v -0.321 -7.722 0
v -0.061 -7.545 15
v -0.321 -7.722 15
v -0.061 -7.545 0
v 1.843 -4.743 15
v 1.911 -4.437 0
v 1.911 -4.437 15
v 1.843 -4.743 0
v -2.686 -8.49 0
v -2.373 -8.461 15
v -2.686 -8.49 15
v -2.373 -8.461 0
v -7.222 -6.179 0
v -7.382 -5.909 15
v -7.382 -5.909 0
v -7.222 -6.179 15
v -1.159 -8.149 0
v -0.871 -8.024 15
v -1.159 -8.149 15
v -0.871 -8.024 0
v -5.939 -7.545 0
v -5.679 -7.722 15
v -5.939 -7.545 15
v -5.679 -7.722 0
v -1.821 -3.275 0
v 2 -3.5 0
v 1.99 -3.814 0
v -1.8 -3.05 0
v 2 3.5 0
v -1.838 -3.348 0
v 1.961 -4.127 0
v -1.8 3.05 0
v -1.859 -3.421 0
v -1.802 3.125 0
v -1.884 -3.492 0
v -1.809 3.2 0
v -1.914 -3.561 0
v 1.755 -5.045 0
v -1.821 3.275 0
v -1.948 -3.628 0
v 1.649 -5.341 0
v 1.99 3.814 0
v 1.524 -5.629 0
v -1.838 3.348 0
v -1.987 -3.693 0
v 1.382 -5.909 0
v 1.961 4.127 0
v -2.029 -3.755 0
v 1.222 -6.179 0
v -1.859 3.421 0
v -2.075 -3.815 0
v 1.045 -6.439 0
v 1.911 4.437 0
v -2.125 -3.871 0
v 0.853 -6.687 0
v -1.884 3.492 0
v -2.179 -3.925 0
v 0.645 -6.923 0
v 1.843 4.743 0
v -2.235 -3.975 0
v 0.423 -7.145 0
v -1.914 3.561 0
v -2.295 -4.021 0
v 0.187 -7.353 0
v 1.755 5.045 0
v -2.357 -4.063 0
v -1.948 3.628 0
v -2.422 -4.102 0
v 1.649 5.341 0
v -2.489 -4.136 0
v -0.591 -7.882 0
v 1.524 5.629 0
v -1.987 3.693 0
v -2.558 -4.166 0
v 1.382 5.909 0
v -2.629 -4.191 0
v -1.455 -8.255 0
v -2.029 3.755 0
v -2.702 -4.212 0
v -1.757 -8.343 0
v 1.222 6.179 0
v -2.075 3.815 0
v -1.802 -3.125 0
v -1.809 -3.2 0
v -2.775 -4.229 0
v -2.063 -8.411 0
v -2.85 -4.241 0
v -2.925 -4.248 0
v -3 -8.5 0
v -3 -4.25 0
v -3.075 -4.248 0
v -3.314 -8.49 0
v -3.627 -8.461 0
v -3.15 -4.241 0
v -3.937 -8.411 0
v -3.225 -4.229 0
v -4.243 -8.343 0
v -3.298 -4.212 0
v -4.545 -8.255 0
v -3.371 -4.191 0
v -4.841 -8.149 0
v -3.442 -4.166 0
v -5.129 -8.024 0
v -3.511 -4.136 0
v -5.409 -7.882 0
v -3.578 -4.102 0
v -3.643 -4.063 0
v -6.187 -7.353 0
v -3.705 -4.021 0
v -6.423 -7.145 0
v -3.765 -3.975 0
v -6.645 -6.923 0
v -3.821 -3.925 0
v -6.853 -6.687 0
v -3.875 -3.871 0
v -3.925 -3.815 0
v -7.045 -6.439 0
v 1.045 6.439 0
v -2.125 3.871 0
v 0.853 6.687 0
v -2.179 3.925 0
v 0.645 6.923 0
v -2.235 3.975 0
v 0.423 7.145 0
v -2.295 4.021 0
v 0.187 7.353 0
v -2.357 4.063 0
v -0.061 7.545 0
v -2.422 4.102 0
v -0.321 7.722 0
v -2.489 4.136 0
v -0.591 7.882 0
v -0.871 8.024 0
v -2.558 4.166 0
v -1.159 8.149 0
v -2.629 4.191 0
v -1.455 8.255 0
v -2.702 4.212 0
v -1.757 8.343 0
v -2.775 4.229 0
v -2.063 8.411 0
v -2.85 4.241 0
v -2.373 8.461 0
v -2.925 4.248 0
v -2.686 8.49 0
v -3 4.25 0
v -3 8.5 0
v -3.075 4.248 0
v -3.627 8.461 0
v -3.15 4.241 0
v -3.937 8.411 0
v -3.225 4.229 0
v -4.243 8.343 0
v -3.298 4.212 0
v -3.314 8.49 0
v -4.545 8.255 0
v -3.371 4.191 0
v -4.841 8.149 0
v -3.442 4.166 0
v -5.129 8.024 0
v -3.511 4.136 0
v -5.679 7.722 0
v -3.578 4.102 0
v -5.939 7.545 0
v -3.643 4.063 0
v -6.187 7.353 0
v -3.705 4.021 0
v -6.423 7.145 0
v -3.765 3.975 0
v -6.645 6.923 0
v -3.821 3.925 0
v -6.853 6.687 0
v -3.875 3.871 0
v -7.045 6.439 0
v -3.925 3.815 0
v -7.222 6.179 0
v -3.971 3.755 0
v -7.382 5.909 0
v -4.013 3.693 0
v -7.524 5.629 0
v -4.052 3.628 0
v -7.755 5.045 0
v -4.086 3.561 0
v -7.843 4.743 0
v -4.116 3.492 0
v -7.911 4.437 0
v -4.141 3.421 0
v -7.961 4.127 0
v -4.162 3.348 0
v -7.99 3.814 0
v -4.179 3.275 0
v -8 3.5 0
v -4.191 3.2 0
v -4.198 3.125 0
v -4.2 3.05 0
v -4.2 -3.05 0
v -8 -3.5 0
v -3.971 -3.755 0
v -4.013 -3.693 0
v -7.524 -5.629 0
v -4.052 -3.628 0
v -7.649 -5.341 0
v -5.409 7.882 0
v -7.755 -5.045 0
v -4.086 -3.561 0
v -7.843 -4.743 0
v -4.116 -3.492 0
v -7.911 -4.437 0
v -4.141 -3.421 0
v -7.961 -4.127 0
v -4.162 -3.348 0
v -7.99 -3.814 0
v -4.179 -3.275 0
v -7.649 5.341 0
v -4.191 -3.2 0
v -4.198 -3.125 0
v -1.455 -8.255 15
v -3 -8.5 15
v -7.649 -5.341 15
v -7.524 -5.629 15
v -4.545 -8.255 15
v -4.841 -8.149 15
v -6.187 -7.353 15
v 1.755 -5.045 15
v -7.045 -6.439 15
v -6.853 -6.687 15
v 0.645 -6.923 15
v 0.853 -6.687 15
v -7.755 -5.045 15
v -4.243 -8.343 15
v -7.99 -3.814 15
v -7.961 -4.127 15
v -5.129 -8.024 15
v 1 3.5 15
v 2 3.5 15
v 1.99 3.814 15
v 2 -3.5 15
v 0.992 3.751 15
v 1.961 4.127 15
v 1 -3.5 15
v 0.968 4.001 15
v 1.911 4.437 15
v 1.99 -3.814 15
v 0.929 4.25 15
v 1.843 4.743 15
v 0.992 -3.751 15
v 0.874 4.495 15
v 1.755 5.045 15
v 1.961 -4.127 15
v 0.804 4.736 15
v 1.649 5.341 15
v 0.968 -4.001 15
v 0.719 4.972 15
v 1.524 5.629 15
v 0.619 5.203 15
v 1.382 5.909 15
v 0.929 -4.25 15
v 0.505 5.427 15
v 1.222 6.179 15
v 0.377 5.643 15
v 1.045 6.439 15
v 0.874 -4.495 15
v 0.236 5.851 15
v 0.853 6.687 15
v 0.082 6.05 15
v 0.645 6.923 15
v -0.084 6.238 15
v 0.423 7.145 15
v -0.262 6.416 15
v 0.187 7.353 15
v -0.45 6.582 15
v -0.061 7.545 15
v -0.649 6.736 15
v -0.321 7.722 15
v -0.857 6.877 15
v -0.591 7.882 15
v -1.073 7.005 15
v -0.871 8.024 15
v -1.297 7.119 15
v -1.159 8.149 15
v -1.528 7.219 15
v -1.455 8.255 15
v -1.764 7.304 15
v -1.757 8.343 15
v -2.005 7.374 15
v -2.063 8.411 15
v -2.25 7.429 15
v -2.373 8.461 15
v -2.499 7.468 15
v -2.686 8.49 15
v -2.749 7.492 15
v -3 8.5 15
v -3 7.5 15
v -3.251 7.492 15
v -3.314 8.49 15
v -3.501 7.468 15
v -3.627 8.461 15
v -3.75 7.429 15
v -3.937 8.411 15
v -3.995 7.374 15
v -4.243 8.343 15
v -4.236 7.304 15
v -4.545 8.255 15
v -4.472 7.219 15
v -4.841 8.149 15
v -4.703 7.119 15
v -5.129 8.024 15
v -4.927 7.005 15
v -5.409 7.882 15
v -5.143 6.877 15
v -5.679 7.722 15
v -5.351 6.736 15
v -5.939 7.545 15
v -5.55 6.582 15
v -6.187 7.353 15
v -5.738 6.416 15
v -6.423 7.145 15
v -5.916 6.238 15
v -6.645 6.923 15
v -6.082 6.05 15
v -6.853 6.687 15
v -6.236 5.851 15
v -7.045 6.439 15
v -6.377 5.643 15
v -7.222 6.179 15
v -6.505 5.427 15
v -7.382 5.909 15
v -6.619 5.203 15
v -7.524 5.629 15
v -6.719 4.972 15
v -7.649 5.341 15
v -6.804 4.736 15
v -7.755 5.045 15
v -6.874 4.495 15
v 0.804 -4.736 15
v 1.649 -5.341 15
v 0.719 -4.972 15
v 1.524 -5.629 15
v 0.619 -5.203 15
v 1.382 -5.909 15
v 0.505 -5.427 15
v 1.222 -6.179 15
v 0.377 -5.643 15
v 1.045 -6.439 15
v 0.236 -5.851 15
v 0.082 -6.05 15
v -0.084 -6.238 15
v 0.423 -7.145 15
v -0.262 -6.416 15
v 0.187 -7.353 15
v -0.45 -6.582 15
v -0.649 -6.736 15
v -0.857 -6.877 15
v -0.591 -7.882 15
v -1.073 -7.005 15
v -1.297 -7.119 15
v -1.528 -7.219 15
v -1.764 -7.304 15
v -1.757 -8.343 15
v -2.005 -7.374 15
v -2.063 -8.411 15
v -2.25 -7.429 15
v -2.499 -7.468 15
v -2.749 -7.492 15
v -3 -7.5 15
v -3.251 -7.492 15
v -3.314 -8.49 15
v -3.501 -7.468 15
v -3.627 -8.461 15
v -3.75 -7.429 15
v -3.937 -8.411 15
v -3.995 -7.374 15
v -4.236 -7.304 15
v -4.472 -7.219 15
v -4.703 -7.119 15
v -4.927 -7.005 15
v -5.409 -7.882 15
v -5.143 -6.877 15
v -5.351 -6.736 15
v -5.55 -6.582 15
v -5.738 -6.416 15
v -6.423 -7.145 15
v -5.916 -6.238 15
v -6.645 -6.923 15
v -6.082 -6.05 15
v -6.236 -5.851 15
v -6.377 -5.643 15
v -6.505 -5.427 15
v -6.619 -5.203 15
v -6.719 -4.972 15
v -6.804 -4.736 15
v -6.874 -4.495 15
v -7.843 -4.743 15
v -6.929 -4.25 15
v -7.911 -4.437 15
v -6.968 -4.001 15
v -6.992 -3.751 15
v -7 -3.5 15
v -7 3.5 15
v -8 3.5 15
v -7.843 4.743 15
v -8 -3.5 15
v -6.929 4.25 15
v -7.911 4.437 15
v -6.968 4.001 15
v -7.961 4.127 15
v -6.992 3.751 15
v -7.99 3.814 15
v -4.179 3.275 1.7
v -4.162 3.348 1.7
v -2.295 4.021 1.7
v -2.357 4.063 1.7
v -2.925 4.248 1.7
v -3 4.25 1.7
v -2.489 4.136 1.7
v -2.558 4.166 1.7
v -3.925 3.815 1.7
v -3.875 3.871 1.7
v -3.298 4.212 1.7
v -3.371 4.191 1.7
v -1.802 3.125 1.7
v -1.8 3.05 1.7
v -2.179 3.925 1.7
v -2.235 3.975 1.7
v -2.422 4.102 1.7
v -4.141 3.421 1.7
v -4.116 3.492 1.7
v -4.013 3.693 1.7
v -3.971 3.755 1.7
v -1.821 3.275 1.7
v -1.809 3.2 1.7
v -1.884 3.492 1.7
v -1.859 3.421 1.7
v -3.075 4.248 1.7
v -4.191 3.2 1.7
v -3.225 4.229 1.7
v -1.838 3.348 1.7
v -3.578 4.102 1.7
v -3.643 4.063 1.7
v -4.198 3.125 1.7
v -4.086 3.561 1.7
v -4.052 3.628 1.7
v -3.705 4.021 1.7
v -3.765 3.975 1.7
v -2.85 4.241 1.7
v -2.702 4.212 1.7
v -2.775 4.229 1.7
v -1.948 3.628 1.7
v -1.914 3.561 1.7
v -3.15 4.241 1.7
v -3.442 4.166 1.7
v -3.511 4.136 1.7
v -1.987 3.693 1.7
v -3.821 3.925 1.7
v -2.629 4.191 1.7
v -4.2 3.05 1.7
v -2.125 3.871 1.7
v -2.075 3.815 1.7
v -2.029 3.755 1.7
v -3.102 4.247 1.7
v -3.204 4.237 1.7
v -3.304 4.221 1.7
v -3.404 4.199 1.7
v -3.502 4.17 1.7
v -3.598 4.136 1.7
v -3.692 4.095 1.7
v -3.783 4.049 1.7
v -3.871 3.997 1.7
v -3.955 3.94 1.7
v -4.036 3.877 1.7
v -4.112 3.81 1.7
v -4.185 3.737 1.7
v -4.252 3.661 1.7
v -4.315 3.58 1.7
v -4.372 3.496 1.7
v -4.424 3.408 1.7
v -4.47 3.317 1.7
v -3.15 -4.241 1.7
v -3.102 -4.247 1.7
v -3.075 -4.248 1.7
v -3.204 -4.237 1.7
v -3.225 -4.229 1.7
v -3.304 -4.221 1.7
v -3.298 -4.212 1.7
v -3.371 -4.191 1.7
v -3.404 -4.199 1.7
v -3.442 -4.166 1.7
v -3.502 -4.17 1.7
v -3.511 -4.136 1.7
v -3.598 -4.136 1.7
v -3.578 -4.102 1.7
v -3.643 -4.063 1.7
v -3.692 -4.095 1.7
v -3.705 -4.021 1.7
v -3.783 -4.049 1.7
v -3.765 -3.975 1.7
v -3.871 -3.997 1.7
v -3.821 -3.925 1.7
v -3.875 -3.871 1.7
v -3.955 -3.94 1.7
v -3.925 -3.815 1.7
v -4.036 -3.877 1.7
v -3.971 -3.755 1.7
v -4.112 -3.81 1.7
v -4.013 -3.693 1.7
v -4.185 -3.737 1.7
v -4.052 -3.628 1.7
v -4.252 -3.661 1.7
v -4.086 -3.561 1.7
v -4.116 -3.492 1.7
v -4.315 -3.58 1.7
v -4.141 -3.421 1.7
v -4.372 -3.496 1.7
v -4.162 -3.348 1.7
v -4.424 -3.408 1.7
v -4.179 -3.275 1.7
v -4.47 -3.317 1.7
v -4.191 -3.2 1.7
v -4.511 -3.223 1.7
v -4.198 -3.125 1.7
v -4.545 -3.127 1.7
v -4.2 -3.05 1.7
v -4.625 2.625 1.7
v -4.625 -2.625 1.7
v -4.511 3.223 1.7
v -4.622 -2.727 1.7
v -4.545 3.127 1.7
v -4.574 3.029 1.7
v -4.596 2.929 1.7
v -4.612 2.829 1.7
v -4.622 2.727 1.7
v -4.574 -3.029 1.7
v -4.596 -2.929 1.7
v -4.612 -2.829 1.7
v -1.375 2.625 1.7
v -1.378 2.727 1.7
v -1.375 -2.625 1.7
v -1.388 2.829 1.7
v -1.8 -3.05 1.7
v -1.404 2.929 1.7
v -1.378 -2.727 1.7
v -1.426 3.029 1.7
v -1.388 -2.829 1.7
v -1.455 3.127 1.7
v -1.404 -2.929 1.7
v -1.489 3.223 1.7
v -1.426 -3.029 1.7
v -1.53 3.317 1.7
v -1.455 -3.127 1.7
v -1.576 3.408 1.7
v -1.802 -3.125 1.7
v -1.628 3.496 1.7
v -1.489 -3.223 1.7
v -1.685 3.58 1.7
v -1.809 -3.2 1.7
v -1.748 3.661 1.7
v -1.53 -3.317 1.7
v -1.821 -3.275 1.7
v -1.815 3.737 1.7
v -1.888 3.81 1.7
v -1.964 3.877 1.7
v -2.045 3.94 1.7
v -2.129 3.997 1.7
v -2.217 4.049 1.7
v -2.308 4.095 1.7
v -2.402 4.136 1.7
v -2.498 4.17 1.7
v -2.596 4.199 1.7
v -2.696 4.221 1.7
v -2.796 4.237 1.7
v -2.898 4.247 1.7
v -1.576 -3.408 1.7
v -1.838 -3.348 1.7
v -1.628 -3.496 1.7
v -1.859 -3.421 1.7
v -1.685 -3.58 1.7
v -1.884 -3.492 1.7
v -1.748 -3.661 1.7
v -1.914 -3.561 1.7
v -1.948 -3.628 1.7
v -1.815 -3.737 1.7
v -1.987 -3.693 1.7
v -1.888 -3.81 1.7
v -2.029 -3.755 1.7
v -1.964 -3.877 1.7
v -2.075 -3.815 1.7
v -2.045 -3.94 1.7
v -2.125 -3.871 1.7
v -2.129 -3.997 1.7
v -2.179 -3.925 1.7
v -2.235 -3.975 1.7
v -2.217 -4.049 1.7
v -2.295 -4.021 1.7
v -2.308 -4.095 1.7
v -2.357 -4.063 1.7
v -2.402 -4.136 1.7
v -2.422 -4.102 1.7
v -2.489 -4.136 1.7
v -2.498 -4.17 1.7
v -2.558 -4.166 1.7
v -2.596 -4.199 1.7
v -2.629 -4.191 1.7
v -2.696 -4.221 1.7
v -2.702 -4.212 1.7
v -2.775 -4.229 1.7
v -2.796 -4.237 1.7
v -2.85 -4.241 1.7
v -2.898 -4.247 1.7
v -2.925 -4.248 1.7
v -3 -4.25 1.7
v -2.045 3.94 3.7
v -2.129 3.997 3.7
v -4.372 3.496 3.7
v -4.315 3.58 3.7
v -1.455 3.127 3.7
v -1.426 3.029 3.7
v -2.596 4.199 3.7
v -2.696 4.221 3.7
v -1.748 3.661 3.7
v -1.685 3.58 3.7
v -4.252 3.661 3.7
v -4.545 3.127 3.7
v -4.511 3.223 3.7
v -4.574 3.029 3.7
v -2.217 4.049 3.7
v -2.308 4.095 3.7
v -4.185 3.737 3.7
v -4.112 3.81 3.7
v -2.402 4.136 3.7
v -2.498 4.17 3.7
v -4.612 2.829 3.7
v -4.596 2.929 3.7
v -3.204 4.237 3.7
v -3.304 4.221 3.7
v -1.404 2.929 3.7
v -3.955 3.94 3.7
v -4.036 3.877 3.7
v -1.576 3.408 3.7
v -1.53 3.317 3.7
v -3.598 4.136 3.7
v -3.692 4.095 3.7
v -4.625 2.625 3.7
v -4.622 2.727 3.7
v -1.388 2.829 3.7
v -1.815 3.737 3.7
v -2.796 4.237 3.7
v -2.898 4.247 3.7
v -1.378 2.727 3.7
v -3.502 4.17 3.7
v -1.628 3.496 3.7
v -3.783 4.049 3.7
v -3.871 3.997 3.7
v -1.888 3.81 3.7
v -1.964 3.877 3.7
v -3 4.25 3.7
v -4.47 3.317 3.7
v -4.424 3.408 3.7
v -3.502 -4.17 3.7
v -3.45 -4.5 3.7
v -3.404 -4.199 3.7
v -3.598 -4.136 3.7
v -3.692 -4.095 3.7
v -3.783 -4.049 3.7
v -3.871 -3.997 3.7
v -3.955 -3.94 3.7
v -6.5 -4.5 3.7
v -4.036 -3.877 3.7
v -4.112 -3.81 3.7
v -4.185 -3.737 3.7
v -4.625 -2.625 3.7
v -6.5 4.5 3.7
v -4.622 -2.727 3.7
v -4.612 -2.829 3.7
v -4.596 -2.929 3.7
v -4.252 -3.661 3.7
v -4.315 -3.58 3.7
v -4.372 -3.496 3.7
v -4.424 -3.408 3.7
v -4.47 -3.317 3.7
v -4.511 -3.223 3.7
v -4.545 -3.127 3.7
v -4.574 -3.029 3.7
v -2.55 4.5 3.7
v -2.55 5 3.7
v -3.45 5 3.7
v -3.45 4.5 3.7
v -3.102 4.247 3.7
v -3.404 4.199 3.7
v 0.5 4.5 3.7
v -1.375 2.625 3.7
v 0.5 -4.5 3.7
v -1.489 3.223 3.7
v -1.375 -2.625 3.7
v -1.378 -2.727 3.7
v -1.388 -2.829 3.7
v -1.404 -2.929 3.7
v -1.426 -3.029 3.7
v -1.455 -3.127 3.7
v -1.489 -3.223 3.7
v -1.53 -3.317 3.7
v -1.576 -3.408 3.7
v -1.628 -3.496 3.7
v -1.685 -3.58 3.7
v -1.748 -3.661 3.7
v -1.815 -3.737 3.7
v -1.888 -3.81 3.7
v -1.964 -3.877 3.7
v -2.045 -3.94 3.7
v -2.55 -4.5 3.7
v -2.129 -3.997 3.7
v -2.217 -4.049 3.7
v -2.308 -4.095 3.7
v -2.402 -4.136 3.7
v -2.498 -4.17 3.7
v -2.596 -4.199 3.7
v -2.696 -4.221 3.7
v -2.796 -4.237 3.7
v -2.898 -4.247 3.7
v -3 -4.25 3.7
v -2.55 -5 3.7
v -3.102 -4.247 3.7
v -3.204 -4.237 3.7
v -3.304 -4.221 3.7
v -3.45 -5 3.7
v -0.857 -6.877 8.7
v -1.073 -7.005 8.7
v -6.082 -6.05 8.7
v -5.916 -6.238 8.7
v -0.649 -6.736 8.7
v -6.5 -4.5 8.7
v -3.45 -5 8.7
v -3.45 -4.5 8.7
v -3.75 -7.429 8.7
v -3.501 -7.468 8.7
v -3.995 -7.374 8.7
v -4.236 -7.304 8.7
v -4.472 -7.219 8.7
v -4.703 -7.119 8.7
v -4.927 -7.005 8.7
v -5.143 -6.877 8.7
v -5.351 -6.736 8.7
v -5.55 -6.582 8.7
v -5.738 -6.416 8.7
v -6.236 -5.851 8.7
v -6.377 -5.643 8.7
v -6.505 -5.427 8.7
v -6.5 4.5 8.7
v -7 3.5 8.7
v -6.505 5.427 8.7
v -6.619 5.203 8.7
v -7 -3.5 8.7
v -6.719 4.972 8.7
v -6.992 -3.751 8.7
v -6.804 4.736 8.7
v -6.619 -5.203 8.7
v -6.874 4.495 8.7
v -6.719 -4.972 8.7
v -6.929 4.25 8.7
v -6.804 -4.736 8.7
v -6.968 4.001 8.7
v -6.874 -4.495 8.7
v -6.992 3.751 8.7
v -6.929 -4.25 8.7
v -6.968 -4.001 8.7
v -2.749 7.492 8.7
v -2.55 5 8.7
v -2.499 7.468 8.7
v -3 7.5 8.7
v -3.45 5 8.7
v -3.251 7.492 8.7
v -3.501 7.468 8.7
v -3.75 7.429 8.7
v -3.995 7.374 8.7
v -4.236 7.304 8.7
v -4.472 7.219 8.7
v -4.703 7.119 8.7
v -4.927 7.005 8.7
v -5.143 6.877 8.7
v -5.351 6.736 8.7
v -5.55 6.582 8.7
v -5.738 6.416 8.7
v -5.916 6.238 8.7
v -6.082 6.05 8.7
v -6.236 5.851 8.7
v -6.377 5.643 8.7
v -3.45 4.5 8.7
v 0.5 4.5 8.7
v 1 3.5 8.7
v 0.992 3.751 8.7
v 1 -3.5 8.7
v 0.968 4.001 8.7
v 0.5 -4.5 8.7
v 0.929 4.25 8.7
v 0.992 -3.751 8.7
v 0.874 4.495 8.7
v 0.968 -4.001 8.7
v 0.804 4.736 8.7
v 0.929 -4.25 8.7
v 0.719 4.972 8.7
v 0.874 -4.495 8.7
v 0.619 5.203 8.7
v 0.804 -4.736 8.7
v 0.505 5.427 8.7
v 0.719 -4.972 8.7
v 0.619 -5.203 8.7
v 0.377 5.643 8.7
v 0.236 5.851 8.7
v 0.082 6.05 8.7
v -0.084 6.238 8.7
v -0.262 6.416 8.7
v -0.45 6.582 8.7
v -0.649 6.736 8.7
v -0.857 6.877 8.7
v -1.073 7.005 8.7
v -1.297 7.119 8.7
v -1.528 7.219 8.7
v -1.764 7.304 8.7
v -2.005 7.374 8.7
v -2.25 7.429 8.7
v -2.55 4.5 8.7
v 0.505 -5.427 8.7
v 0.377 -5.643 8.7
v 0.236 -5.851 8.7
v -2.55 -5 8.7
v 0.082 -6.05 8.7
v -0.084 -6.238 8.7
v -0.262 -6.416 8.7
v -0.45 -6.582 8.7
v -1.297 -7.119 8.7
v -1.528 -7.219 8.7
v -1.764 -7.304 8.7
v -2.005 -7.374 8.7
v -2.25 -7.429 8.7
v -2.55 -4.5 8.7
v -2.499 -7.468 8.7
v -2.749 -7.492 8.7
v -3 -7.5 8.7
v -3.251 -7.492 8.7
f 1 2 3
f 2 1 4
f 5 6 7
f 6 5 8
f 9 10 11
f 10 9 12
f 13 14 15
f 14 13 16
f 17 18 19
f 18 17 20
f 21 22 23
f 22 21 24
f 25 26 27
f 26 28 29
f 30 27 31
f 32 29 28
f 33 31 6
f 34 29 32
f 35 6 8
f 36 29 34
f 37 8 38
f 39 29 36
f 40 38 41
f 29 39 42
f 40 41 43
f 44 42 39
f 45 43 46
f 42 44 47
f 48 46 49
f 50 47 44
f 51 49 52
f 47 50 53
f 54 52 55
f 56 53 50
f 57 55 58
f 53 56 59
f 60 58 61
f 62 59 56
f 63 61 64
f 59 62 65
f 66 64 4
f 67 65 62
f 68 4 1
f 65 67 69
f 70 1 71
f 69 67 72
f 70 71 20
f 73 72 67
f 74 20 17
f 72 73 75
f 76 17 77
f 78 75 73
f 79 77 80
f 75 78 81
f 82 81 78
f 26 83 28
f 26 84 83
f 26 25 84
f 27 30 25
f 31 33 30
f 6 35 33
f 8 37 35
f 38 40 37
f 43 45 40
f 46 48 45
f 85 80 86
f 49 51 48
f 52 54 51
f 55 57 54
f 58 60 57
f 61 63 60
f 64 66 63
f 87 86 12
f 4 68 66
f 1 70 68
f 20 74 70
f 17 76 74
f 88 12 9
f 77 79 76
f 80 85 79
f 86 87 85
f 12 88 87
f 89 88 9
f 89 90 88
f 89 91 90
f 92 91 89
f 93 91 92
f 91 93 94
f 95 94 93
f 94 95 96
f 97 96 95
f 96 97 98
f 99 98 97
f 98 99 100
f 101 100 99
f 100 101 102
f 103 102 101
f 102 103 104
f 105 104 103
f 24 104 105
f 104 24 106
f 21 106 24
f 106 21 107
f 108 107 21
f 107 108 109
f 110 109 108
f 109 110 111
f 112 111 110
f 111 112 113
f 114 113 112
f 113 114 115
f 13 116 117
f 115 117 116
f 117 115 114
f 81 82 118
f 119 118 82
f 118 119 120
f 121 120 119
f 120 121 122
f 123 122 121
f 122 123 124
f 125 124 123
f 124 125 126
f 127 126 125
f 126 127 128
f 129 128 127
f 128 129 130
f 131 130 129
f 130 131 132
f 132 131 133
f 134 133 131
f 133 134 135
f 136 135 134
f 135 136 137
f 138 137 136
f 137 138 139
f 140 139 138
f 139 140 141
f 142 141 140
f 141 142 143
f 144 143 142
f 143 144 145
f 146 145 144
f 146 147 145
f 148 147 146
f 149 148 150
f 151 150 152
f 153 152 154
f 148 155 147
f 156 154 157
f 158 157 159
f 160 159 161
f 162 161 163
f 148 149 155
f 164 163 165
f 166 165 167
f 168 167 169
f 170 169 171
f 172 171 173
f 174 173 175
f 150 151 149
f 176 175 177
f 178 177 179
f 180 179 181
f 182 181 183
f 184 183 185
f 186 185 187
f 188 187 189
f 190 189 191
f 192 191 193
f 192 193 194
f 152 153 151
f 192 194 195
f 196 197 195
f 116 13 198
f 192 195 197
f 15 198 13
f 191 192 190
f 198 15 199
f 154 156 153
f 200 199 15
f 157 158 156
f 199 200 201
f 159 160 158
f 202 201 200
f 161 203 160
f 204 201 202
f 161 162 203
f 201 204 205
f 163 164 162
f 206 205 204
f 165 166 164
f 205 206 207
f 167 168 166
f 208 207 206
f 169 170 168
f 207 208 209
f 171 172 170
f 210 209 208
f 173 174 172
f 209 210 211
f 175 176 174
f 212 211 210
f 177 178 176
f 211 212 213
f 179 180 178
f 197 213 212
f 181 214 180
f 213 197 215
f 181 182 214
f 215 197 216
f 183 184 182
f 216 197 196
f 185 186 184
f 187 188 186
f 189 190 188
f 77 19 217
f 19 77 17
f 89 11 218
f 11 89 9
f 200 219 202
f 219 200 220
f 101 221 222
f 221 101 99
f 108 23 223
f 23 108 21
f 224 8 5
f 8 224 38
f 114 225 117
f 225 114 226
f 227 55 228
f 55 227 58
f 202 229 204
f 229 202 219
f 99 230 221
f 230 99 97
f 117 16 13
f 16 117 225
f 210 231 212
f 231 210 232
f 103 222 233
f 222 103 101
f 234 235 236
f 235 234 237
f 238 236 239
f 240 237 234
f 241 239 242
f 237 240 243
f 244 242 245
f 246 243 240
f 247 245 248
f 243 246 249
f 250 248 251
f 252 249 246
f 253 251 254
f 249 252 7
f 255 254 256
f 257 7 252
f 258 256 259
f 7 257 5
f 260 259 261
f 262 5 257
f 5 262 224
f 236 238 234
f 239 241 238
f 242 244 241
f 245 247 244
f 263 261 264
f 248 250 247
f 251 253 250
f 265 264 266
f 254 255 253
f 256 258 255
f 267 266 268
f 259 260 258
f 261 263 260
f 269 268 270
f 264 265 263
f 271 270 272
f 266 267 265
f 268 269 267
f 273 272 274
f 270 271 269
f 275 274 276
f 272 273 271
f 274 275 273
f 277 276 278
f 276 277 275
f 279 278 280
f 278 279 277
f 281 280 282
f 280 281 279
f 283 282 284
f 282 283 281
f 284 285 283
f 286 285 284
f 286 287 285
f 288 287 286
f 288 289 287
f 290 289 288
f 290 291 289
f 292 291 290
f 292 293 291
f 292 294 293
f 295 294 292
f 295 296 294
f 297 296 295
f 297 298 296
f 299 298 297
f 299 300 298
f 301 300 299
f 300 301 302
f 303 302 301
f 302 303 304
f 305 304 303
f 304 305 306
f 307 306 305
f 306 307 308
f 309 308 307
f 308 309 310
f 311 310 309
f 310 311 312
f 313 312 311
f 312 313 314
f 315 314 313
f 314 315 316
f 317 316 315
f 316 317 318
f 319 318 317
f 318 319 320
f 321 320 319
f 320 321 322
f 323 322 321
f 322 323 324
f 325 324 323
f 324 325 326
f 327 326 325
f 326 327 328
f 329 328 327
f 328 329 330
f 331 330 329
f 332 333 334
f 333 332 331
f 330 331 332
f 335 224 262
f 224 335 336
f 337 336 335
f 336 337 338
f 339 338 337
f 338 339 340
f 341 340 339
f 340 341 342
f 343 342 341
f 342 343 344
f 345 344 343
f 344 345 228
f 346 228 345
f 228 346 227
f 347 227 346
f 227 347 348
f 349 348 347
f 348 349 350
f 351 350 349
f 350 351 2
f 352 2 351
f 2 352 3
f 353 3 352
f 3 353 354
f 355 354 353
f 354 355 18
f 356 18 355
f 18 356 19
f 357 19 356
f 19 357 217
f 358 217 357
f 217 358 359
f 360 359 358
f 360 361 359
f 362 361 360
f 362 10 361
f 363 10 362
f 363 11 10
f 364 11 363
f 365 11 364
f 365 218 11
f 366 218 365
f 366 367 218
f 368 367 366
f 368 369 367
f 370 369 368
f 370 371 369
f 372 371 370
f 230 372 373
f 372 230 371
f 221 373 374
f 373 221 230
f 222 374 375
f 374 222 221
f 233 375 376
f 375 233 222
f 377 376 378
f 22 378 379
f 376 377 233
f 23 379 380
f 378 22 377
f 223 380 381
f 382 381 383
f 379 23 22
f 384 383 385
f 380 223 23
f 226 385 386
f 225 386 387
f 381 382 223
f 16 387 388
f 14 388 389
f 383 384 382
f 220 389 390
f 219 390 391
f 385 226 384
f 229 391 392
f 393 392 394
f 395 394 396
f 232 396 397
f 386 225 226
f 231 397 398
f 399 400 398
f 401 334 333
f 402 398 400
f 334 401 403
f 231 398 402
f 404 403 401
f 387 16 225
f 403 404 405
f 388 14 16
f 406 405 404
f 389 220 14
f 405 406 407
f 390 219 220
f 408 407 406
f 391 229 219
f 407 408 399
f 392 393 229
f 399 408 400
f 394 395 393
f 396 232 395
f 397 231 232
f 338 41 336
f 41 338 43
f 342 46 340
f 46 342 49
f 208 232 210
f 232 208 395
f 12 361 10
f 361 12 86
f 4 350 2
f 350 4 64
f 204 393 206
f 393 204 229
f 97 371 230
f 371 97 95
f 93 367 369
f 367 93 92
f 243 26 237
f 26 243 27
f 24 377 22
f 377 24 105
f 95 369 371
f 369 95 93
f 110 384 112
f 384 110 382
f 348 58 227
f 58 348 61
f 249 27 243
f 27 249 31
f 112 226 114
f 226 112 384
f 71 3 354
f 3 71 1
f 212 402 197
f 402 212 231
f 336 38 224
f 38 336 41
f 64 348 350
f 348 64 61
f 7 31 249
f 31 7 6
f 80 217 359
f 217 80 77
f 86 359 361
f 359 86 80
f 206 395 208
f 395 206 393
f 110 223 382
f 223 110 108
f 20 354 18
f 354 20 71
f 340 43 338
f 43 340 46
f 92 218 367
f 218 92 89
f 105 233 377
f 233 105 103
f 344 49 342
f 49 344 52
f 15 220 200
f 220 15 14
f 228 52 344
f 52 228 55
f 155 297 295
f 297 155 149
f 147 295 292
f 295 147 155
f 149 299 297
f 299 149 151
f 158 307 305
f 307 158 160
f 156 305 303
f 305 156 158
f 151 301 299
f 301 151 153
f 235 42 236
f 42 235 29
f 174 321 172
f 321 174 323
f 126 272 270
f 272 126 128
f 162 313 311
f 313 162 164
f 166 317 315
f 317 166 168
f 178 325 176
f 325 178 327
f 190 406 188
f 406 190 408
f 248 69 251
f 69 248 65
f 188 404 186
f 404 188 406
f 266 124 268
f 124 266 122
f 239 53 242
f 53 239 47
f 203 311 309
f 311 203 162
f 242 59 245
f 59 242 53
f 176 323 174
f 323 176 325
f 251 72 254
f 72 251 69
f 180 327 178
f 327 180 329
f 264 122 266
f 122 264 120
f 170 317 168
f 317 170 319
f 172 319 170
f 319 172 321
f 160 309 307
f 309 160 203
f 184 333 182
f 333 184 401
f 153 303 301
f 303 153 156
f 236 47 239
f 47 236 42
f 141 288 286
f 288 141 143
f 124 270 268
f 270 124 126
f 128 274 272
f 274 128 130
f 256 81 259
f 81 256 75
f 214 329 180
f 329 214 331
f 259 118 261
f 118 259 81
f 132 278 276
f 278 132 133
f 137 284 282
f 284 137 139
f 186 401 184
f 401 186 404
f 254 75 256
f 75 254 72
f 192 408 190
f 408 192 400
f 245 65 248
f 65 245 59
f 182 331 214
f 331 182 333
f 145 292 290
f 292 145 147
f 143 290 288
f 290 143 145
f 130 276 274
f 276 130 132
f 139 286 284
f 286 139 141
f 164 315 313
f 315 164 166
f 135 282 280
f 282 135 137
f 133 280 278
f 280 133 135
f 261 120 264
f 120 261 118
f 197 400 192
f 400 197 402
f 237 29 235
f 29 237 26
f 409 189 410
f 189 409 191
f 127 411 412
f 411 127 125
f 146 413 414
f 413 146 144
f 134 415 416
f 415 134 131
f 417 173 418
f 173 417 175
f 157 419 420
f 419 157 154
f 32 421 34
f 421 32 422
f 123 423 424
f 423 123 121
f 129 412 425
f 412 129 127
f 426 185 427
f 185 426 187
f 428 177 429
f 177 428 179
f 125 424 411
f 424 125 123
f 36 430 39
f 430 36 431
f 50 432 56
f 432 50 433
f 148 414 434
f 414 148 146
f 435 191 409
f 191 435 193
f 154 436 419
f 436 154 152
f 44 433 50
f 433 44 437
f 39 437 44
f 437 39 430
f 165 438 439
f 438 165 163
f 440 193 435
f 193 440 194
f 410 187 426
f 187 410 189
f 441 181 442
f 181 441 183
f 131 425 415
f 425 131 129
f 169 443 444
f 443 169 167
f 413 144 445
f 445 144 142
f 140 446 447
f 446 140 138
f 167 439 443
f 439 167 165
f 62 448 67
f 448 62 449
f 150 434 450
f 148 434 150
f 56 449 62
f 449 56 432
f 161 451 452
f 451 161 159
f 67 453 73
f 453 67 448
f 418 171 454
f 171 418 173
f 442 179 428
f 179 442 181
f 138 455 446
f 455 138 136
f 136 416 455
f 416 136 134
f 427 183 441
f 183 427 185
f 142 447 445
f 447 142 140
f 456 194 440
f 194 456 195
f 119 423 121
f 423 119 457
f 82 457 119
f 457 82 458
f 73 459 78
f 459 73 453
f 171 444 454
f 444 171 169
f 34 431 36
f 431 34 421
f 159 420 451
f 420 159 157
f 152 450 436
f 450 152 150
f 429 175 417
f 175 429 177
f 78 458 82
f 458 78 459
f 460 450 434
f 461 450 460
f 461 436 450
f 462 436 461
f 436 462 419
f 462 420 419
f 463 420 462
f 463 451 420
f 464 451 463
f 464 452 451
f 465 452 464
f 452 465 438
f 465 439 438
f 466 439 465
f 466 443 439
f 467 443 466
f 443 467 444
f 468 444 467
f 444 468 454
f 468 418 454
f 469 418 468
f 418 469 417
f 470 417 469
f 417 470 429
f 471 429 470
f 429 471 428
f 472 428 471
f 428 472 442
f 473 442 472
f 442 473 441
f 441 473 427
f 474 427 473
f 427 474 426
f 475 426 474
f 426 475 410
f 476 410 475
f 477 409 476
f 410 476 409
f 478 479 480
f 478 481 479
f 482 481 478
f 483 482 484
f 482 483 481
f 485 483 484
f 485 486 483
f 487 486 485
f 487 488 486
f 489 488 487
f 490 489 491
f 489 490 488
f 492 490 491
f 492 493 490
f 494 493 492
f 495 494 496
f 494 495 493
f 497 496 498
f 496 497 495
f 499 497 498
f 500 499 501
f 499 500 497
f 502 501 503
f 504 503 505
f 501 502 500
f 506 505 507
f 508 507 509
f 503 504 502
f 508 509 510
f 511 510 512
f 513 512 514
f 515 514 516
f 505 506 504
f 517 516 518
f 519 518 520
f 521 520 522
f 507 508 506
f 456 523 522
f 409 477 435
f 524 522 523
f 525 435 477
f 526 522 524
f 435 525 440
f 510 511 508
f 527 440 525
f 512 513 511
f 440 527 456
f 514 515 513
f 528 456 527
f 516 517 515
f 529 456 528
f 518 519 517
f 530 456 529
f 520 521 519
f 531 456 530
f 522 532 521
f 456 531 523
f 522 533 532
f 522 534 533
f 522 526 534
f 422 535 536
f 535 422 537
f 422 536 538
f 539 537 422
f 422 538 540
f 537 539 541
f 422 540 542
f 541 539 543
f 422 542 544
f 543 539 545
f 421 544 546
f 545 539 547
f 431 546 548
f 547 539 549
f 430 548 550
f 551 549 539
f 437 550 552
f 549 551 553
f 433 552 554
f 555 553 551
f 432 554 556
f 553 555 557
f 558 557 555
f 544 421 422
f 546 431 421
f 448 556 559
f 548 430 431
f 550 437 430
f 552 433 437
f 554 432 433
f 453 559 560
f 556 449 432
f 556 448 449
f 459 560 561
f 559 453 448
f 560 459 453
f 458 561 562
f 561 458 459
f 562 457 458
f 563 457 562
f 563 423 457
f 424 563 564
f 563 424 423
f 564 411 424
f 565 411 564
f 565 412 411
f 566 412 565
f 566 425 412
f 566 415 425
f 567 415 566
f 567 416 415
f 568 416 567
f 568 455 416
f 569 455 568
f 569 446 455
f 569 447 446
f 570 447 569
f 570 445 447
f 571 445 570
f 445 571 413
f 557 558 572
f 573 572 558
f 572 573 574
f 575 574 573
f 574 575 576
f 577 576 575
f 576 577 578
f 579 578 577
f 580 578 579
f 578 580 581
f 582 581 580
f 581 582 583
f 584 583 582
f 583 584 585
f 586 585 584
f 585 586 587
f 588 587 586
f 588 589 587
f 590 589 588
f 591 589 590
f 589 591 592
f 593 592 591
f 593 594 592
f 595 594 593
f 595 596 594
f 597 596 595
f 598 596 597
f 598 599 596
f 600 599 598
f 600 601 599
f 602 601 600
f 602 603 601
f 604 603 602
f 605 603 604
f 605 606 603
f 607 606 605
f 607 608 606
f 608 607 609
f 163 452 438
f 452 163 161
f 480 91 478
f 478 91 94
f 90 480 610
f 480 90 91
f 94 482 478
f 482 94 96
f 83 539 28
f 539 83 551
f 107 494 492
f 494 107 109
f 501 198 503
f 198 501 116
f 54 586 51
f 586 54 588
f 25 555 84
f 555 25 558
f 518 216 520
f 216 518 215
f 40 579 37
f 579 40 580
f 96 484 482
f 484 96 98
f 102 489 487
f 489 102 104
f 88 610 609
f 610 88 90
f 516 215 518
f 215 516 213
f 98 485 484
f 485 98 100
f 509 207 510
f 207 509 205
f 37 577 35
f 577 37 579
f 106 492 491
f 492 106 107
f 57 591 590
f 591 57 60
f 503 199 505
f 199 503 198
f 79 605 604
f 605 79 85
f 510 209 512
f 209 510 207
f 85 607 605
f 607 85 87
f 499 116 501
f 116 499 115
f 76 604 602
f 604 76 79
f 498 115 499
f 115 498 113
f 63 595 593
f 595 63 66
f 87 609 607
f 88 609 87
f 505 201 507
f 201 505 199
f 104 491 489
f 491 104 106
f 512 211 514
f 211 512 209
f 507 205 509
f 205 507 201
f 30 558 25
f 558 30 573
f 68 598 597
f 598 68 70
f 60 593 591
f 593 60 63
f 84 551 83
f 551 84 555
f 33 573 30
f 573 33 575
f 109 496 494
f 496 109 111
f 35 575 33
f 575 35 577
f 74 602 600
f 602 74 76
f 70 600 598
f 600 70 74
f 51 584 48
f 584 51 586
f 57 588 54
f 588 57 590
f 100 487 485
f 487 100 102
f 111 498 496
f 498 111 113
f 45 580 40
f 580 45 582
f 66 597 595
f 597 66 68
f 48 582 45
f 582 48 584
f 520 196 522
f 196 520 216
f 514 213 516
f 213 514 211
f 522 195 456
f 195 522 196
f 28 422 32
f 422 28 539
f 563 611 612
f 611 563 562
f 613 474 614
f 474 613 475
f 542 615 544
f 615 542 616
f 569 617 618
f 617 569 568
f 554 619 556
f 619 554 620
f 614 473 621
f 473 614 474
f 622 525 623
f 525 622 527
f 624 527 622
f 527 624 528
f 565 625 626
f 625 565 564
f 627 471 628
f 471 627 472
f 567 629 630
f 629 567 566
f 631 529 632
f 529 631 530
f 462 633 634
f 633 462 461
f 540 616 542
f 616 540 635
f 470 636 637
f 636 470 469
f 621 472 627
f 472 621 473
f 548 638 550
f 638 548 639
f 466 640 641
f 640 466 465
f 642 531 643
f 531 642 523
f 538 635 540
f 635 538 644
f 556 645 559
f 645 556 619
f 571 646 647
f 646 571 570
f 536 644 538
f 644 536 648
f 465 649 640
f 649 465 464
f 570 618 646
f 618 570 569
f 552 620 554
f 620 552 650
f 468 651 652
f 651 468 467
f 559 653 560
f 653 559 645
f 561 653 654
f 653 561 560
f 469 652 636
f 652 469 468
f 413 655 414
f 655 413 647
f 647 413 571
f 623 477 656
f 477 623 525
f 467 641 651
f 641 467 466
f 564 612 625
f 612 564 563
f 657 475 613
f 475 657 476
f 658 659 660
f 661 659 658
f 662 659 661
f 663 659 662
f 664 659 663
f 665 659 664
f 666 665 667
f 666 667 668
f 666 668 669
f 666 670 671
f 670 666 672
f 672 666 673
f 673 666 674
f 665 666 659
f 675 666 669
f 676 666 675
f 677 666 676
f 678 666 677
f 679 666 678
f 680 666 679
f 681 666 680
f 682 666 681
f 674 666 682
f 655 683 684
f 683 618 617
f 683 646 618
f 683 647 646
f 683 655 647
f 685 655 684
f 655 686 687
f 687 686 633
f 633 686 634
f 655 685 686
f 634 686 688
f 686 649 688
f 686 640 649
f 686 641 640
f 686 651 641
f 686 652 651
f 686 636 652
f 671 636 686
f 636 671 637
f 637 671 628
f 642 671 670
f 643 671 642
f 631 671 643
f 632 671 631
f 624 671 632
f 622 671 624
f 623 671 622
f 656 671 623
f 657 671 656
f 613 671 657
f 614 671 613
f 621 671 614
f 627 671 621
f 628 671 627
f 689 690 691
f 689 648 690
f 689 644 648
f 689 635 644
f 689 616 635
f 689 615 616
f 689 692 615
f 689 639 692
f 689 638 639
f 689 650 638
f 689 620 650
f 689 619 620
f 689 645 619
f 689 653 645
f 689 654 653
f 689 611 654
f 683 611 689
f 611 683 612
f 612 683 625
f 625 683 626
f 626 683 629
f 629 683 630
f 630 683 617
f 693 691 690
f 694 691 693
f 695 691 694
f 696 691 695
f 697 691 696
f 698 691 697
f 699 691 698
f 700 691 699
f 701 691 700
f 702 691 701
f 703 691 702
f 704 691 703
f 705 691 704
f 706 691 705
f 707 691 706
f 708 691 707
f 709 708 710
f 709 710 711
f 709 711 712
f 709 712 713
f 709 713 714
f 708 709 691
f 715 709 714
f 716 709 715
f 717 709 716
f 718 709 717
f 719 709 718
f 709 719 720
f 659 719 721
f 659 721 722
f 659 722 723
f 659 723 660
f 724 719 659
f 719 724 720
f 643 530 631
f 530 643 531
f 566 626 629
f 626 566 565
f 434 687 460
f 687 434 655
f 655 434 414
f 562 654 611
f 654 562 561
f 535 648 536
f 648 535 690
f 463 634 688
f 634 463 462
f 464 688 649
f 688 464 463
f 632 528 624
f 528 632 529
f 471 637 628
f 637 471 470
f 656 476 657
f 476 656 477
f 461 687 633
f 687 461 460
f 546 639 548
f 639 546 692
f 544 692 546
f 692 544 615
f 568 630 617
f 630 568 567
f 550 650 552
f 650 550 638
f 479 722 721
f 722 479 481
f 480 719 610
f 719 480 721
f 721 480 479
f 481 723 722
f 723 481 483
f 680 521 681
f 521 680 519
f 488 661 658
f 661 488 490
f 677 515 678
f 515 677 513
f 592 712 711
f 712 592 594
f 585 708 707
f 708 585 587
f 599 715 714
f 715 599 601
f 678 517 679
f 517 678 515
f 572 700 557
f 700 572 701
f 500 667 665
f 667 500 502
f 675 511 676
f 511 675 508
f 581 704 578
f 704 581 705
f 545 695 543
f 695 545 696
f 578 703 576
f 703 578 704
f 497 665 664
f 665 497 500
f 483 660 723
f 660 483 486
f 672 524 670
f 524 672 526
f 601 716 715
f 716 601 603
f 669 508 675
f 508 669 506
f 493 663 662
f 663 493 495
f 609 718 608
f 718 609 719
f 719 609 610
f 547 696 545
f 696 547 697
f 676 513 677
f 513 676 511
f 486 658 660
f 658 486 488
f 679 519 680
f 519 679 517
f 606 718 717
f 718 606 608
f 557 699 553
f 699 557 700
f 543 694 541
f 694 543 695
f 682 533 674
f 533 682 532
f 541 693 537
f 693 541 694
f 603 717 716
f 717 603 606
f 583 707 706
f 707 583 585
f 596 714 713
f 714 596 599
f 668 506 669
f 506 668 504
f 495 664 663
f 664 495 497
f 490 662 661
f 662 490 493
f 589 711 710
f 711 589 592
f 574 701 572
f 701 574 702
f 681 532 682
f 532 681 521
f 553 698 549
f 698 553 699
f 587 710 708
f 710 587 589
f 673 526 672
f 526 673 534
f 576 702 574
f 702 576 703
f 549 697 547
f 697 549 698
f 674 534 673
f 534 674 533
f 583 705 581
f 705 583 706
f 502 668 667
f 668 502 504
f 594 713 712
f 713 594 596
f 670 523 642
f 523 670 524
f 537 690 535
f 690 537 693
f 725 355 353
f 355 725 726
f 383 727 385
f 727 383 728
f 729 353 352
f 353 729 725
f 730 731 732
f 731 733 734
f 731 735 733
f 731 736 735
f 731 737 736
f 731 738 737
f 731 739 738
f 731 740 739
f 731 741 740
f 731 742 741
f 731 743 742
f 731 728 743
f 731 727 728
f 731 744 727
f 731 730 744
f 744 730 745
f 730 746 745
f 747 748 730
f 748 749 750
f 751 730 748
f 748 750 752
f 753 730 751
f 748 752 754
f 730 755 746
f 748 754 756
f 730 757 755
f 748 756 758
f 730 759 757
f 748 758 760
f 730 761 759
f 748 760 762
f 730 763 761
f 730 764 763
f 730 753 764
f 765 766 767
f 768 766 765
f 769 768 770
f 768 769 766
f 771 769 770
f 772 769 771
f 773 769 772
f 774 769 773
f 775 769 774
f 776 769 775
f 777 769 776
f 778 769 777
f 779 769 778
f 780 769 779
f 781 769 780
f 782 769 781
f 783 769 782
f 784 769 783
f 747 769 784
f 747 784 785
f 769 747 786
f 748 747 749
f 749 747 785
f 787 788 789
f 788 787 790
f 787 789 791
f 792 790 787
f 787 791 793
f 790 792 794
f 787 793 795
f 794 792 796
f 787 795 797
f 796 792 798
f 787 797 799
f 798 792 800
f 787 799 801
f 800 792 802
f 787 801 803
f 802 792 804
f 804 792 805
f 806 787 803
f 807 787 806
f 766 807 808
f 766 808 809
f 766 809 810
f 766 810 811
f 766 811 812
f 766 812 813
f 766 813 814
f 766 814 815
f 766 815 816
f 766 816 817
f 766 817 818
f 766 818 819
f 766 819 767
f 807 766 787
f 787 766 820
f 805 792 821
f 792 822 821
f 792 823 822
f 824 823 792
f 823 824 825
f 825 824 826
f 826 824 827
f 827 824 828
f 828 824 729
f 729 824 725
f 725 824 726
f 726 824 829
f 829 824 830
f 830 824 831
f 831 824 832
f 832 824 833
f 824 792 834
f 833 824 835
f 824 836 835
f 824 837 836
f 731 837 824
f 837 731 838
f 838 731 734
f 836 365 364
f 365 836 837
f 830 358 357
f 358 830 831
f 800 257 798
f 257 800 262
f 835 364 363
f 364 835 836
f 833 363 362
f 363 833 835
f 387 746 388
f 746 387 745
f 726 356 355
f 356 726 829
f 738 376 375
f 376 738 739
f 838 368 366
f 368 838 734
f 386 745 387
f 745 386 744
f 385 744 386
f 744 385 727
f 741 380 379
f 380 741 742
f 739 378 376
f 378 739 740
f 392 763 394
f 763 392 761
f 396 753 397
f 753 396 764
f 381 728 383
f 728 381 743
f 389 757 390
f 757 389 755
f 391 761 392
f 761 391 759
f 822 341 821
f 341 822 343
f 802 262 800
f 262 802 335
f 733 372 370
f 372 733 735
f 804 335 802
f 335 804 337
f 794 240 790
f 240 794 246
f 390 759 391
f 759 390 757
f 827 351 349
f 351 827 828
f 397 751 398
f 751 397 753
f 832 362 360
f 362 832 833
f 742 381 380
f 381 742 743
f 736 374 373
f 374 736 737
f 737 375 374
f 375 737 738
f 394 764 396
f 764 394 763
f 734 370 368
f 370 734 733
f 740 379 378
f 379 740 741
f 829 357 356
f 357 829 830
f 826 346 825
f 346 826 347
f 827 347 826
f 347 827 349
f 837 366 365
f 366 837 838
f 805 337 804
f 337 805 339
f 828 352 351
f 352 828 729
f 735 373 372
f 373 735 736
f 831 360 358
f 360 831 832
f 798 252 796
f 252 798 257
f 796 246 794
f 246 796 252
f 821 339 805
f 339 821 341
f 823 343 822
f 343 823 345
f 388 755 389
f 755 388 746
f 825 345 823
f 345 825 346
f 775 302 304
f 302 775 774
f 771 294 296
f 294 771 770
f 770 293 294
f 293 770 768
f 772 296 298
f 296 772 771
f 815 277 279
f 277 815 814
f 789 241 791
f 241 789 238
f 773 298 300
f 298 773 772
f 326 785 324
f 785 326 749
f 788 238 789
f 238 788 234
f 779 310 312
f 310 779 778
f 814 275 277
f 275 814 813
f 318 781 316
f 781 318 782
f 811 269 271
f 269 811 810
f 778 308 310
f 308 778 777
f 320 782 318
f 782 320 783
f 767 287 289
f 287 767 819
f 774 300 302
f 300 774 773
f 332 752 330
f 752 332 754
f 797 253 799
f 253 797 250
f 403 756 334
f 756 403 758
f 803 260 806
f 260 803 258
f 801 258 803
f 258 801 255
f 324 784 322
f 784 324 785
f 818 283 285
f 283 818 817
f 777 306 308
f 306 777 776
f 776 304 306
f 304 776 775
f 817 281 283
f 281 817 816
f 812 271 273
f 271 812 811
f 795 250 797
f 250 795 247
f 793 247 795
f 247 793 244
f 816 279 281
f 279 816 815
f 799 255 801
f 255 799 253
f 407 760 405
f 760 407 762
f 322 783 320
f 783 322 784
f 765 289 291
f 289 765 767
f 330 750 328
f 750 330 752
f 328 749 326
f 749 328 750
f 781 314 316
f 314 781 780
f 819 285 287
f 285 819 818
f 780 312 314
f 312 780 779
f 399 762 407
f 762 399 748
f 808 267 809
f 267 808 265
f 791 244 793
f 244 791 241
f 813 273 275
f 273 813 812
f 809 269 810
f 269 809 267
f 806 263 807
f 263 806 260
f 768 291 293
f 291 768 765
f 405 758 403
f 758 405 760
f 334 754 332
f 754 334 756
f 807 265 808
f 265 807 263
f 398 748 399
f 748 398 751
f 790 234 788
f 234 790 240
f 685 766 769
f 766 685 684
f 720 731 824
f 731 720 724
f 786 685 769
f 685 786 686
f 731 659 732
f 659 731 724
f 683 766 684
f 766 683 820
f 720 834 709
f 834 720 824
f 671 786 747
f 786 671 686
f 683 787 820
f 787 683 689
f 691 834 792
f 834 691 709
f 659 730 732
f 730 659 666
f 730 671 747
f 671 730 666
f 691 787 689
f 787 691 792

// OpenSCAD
$fn=100; $fa=0.1;

H_b=2;

module tyouen(Hight,Width,Radius){
    union(){
        translate([-(Width-2*Radius)/2,0,0])cylinder(h=Hight,r=Radius);
        translate([(Width-2*Radius)/2,0,0])cylinder(h=Hight,r=Radius);
        translate([-(Width-2*Radius)/2,-Radius,0])cube([Width-2*Radius,2*Radius,Hight]);
    }
}

module bogopin(){
    color([1,1,0]){
        union(){
            cylinder(h=.5,r=1);
            cylinder(h=2.7,r=.75);
            cylinder(h=4-.45,r=.45);
            translate([0,0,4-.45])sphere(r=.45);
        }
    }
}

module part(){
    translate([18.2,-6.5,-4.4]) union(){
        bogopin();
        translate([1.5,2,0])bogopin();
        translate([3,0,0])bogopin();
        translate([4.5,2,0])bogopin();
    }

    translate([15-0.6,-8.85/2,5-2.6]) rotate([0,0,90])union(){
        cube([6.27,9.96,0.5]);
        color([0,0,0])translate([0,0,0.5])cube([8.85,9.96,0.7]);
    }

    translate([0,0,0]) rotate([90,0,-90]) union(){
        translate([0,0,H_b])tyouen(10.5-H_b,8.25,1.2);
        translate([0,0,0])tyouen(H_b,8.25,3.25/2);
    }
}

// translate([-203,45,-0.4])import("bsercon.stl");


color([1,1,1,.5])translate([-3,0,.7]) rotate([0,0,90])union(){
    difference(){
        translate([0,0,-0.7])tyouen(15,17,5);
        union(){
            translate([-5,-0.45,3])cube([10,0.9,20]);
            translate([-4.5,-3.5,3])cube([9,7,20]);
            translate([0,0,8])tyouen(10,15,4);
            translate([0,0,3]) rotate([0,180,0]) union(){
                translate([0,0,H_b])tyouen(10.5-H_b,8.5,1.2);
                translate([0,0,0])tyouen(H_b,8.5,3.25/2);
            }
        }
    }
}
